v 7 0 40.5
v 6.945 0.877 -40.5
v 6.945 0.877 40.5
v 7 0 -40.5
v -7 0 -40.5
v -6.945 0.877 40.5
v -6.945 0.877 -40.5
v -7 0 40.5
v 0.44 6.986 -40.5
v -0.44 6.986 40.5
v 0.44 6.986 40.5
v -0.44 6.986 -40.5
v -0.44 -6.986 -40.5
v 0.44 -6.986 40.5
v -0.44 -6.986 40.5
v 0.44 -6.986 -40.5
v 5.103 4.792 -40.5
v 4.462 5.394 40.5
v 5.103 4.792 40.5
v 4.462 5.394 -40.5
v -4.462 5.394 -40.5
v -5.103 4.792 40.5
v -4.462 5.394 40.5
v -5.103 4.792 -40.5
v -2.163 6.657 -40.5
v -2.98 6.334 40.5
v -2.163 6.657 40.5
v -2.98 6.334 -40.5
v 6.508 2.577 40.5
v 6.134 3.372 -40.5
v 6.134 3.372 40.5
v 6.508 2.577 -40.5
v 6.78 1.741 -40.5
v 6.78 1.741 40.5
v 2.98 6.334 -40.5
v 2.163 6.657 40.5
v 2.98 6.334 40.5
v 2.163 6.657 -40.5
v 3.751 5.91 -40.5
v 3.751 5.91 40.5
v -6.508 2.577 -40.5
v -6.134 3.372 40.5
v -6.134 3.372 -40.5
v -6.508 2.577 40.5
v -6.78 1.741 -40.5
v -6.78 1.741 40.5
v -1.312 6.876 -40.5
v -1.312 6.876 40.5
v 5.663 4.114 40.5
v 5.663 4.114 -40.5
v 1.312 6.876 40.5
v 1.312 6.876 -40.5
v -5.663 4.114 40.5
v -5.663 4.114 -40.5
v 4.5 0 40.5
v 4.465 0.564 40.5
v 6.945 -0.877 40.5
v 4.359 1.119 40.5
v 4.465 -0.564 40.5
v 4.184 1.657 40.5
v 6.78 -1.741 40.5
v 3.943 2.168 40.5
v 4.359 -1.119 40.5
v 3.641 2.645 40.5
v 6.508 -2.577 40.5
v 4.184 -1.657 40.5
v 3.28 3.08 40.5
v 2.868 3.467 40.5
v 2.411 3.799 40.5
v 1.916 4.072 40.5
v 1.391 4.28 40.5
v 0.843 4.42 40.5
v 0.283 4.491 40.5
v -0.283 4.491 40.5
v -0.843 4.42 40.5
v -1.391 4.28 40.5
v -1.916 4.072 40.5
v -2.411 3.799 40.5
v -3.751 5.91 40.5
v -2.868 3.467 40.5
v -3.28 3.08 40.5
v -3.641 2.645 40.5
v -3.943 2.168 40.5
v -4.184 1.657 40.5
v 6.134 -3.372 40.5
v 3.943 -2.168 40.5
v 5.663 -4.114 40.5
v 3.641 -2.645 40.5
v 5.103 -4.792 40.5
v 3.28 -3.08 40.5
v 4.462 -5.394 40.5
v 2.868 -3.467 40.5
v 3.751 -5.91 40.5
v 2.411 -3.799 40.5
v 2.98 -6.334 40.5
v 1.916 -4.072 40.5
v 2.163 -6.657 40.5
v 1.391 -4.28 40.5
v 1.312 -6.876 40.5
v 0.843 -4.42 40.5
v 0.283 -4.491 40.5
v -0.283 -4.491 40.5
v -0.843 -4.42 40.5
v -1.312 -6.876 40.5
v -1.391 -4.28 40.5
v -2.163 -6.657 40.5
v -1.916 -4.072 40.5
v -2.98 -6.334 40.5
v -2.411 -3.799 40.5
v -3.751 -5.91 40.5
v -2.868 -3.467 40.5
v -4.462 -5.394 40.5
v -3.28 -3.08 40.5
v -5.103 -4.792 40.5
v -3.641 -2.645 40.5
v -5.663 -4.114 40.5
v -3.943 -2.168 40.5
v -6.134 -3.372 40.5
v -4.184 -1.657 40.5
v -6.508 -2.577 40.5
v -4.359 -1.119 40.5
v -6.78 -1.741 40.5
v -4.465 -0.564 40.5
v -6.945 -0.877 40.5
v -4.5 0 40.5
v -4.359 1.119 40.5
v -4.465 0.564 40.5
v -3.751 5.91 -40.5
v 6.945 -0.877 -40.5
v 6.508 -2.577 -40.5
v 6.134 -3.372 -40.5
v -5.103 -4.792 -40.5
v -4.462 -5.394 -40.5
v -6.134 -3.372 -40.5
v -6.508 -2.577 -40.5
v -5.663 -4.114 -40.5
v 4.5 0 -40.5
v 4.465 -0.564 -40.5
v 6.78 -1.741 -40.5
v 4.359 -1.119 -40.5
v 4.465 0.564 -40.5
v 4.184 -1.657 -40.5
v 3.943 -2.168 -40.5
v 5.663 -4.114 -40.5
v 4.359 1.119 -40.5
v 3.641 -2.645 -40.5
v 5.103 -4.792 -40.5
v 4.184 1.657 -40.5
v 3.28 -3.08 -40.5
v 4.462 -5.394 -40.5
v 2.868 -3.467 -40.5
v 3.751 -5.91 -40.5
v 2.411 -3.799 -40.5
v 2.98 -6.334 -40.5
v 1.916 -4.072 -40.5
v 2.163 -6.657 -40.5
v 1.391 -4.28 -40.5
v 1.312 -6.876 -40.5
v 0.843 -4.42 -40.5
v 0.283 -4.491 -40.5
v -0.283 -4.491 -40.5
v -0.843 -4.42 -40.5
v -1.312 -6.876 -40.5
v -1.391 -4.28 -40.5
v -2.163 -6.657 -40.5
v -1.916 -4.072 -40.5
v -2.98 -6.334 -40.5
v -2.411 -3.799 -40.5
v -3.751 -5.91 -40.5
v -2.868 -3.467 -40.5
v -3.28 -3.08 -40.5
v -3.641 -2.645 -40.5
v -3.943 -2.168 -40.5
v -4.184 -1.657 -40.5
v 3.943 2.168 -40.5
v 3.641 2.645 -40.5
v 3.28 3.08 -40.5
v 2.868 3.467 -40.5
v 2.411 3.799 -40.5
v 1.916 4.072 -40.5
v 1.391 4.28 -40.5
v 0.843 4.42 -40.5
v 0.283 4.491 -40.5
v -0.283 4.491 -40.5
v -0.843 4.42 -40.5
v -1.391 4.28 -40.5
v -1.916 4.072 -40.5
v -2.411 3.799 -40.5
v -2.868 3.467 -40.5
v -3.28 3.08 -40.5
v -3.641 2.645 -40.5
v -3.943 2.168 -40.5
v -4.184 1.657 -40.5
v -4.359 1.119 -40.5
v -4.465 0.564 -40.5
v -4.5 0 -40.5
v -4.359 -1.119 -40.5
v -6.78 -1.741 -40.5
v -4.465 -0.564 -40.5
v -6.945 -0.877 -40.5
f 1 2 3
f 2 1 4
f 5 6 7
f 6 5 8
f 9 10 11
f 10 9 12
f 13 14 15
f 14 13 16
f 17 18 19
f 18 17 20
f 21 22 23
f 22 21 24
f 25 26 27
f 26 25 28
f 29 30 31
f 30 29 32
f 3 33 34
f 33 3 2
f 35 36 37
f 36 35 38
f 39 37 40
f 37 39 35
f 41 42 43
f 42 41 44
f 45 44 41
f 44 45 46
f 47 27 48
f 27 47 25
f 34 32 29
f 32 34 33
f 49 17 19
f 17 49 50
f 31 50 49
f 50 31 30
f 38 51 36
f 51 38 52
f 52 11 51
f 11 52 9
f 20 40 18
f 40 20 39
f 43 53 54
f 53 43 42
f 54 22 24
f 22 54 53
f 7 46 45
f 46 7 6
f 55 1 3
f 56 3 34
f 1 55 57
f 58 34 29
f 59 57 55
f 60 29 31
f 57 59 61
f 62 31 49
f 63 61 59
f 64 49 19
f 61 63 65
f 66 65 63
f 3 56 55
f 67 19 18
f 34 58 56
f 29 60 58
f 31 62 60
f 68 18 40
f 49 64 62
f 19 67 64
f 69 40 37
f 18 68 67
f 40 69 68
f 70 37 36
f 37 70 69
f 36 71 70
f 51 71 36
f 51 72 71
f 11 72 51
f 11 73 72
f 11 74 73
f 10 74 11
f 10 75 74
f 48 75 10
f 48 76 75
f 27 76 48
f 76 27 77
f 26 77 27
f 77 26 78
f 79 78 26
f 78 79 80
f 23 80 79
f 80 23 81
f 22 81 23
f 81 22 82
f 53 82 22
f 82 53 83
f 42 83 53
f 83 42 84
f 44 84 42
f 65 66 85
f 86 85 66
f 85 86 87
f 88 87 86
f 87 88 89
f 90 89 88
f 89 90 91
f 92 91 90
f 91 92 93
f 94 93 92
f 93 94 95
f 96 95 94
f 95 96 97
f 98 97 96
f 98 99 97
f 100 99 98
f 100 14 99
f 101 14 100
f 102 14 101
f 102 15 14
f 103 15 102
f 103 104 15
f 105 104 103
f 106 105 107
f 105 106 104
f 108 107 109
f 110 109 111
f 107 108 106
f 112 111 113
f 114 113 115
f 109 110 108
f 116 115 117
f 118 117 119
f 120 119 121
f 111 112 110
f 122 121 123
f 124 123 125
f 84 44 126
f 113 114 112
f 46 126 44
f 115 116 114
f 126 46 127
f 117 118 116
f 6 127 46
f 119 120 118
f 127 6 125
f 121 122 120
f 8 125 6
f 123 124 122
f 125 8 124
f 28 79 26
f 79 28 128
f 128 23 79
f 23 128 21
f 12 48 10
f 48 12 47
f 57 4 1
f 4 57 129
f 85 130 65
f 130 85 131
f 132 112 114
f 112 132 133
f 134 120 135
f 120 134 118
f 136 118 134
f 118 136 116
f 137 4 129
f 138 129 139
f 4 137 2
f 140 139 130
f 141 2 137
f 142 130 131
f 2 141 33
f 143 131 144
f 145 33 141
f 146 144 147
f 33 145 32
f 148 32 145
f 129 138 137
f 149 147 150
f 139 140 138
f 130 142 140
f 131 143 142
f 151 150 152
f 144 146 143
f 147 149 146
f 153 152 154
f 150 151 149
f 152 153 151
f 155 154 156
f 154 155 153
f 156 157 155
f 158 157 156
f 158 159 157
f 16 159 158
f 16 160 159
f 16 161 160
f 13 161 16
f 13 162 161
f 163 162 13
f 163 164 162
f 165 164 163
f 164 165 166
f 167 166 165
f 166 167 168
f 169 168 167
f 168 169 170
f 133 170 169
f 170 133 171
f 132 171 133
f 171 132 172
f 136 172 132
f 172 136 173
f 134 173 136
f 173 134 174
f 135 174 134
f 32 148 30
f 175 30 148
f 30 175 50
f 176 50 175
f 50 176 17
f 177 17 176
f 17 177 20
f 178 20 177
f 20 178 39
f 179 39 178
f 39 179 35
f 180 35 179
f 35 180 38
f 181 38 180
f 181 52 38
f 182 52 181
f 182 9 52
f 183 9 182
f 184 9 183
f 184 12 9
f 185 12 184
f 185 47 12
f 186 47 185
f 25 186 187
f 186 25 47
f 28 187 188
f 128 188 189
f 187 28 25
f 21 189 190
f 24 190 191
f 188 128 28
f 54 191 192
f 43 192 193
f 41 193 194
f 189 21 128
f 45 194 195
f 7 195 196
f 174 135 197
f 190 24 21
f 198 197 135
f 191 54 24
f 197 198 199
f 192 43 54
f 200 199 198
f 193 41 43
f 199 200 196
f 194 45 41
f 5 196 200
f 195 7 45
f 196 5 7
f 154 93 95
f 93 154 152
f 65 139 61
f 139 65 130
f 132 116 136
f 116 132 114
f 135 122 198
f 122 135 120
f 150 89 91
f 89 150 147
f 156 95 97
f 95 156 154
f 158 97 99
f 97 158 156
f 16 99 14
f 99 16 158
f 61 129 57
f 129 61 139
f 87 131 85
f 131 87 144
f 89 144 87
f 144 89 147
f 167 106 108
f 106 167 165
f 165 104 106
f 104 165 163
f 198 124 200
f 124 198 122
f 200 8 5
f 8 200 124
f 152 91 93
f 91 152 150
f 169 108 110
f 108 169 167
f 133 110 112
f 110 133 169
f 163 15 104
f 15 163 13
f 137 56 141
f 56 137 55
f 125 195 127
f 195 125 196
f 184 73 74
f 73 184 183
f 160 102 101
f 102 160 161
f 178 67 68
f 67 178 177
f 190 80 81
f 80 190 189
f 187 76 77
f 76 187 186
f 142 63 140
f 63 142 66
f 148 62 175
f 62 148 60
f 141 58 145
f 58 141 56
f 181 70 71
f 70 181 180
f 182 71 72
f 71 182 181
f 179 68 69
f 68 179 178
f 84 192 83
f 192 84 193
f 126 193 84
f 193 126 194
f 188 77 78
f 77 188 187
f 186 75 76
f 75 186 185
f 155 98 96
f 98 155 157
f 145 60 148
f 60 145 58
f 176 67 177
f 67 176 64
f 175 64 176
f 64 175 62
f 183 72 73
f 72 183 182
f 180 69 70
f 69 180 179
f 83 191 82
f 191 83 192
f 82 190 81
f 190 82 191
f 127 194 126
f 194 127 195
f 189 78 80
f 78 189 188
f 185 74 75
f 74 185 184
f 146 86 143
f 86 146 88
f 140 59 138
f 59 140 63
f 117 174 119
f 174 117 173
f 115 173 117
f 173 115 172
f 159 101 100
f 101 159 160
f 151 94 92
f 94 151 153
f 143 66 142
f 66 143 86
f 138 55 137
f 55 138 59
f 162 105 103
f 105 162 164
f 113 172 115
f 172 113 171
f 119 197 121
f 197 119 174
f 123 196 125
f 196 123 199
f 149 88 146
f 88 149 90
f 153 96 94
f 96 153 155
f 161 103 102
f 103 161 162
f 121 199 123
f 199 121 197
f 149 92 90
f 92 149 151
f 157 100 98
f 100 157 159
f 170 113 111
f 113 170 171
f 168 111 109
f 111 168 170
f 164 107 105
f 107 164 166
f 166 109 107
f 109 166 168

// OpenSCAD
$fn = 50;


difference() {
	union() {
		translate(v = [0, 0, -40.5000000000]) {
			cylinder(h = 81, r = 7.0000000000);
		}
	}
	union() {
		translate(v = [0, 0, -100.0000000000]) {
			cylinder(h = 200, r = 4.5000000000);
		}
	}
}
